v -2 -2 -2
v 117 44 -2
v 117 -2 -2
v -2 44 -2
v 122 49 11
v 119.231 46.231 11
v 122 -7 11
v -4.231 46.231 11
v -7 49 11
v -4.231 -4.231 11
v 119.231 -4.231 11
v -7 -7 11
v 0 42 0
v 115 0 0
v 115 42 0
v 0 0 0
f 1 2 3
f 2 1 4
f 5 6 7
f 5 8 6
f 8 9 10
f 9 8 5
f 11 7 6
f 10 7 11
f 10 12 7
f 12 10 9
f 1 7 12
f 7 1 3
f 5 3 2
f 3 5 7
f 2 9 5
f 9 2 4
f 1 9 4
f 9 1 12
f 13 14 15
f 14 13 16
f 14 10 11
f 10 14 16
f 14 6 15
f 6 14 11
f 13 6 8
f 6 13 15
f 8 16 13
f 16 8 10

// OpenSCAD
x = 115;
y = 42;
z = 13;
e = 2;
b = 5;

points = [
	[0,0,0],
	[x,0,0],
	[x,y,0],
	[0,y,0],
	[0-5,0-5,z],
	[x+5,0-5,z],
	[x+5,y+5,z],
	[0-5,y+5,z]
];

points2 = [
	[0-e,0-e,0-e],
	[x+e,0-e,0-e],
	[x+e,y+e,0-e],
	[0-e,y+e,0-e],
	[0-5-e,0-5-e,z-e],
	[x+5+e,0-5-e,z-e],
	[x+5+e,y+5+e,z-e],
	[0-5-e,y+5+e,z-e]
];

polygons = [
	[0,3,2,1],
	[4,5,6,7],
	[0,1,5,4],
	[1,2,6,5],
	[2,3,7,6],
	[3,0,4,7]
];
difference() {
	polyhedron(points2, polygons);
	polyhedron(points, polygons);
}
